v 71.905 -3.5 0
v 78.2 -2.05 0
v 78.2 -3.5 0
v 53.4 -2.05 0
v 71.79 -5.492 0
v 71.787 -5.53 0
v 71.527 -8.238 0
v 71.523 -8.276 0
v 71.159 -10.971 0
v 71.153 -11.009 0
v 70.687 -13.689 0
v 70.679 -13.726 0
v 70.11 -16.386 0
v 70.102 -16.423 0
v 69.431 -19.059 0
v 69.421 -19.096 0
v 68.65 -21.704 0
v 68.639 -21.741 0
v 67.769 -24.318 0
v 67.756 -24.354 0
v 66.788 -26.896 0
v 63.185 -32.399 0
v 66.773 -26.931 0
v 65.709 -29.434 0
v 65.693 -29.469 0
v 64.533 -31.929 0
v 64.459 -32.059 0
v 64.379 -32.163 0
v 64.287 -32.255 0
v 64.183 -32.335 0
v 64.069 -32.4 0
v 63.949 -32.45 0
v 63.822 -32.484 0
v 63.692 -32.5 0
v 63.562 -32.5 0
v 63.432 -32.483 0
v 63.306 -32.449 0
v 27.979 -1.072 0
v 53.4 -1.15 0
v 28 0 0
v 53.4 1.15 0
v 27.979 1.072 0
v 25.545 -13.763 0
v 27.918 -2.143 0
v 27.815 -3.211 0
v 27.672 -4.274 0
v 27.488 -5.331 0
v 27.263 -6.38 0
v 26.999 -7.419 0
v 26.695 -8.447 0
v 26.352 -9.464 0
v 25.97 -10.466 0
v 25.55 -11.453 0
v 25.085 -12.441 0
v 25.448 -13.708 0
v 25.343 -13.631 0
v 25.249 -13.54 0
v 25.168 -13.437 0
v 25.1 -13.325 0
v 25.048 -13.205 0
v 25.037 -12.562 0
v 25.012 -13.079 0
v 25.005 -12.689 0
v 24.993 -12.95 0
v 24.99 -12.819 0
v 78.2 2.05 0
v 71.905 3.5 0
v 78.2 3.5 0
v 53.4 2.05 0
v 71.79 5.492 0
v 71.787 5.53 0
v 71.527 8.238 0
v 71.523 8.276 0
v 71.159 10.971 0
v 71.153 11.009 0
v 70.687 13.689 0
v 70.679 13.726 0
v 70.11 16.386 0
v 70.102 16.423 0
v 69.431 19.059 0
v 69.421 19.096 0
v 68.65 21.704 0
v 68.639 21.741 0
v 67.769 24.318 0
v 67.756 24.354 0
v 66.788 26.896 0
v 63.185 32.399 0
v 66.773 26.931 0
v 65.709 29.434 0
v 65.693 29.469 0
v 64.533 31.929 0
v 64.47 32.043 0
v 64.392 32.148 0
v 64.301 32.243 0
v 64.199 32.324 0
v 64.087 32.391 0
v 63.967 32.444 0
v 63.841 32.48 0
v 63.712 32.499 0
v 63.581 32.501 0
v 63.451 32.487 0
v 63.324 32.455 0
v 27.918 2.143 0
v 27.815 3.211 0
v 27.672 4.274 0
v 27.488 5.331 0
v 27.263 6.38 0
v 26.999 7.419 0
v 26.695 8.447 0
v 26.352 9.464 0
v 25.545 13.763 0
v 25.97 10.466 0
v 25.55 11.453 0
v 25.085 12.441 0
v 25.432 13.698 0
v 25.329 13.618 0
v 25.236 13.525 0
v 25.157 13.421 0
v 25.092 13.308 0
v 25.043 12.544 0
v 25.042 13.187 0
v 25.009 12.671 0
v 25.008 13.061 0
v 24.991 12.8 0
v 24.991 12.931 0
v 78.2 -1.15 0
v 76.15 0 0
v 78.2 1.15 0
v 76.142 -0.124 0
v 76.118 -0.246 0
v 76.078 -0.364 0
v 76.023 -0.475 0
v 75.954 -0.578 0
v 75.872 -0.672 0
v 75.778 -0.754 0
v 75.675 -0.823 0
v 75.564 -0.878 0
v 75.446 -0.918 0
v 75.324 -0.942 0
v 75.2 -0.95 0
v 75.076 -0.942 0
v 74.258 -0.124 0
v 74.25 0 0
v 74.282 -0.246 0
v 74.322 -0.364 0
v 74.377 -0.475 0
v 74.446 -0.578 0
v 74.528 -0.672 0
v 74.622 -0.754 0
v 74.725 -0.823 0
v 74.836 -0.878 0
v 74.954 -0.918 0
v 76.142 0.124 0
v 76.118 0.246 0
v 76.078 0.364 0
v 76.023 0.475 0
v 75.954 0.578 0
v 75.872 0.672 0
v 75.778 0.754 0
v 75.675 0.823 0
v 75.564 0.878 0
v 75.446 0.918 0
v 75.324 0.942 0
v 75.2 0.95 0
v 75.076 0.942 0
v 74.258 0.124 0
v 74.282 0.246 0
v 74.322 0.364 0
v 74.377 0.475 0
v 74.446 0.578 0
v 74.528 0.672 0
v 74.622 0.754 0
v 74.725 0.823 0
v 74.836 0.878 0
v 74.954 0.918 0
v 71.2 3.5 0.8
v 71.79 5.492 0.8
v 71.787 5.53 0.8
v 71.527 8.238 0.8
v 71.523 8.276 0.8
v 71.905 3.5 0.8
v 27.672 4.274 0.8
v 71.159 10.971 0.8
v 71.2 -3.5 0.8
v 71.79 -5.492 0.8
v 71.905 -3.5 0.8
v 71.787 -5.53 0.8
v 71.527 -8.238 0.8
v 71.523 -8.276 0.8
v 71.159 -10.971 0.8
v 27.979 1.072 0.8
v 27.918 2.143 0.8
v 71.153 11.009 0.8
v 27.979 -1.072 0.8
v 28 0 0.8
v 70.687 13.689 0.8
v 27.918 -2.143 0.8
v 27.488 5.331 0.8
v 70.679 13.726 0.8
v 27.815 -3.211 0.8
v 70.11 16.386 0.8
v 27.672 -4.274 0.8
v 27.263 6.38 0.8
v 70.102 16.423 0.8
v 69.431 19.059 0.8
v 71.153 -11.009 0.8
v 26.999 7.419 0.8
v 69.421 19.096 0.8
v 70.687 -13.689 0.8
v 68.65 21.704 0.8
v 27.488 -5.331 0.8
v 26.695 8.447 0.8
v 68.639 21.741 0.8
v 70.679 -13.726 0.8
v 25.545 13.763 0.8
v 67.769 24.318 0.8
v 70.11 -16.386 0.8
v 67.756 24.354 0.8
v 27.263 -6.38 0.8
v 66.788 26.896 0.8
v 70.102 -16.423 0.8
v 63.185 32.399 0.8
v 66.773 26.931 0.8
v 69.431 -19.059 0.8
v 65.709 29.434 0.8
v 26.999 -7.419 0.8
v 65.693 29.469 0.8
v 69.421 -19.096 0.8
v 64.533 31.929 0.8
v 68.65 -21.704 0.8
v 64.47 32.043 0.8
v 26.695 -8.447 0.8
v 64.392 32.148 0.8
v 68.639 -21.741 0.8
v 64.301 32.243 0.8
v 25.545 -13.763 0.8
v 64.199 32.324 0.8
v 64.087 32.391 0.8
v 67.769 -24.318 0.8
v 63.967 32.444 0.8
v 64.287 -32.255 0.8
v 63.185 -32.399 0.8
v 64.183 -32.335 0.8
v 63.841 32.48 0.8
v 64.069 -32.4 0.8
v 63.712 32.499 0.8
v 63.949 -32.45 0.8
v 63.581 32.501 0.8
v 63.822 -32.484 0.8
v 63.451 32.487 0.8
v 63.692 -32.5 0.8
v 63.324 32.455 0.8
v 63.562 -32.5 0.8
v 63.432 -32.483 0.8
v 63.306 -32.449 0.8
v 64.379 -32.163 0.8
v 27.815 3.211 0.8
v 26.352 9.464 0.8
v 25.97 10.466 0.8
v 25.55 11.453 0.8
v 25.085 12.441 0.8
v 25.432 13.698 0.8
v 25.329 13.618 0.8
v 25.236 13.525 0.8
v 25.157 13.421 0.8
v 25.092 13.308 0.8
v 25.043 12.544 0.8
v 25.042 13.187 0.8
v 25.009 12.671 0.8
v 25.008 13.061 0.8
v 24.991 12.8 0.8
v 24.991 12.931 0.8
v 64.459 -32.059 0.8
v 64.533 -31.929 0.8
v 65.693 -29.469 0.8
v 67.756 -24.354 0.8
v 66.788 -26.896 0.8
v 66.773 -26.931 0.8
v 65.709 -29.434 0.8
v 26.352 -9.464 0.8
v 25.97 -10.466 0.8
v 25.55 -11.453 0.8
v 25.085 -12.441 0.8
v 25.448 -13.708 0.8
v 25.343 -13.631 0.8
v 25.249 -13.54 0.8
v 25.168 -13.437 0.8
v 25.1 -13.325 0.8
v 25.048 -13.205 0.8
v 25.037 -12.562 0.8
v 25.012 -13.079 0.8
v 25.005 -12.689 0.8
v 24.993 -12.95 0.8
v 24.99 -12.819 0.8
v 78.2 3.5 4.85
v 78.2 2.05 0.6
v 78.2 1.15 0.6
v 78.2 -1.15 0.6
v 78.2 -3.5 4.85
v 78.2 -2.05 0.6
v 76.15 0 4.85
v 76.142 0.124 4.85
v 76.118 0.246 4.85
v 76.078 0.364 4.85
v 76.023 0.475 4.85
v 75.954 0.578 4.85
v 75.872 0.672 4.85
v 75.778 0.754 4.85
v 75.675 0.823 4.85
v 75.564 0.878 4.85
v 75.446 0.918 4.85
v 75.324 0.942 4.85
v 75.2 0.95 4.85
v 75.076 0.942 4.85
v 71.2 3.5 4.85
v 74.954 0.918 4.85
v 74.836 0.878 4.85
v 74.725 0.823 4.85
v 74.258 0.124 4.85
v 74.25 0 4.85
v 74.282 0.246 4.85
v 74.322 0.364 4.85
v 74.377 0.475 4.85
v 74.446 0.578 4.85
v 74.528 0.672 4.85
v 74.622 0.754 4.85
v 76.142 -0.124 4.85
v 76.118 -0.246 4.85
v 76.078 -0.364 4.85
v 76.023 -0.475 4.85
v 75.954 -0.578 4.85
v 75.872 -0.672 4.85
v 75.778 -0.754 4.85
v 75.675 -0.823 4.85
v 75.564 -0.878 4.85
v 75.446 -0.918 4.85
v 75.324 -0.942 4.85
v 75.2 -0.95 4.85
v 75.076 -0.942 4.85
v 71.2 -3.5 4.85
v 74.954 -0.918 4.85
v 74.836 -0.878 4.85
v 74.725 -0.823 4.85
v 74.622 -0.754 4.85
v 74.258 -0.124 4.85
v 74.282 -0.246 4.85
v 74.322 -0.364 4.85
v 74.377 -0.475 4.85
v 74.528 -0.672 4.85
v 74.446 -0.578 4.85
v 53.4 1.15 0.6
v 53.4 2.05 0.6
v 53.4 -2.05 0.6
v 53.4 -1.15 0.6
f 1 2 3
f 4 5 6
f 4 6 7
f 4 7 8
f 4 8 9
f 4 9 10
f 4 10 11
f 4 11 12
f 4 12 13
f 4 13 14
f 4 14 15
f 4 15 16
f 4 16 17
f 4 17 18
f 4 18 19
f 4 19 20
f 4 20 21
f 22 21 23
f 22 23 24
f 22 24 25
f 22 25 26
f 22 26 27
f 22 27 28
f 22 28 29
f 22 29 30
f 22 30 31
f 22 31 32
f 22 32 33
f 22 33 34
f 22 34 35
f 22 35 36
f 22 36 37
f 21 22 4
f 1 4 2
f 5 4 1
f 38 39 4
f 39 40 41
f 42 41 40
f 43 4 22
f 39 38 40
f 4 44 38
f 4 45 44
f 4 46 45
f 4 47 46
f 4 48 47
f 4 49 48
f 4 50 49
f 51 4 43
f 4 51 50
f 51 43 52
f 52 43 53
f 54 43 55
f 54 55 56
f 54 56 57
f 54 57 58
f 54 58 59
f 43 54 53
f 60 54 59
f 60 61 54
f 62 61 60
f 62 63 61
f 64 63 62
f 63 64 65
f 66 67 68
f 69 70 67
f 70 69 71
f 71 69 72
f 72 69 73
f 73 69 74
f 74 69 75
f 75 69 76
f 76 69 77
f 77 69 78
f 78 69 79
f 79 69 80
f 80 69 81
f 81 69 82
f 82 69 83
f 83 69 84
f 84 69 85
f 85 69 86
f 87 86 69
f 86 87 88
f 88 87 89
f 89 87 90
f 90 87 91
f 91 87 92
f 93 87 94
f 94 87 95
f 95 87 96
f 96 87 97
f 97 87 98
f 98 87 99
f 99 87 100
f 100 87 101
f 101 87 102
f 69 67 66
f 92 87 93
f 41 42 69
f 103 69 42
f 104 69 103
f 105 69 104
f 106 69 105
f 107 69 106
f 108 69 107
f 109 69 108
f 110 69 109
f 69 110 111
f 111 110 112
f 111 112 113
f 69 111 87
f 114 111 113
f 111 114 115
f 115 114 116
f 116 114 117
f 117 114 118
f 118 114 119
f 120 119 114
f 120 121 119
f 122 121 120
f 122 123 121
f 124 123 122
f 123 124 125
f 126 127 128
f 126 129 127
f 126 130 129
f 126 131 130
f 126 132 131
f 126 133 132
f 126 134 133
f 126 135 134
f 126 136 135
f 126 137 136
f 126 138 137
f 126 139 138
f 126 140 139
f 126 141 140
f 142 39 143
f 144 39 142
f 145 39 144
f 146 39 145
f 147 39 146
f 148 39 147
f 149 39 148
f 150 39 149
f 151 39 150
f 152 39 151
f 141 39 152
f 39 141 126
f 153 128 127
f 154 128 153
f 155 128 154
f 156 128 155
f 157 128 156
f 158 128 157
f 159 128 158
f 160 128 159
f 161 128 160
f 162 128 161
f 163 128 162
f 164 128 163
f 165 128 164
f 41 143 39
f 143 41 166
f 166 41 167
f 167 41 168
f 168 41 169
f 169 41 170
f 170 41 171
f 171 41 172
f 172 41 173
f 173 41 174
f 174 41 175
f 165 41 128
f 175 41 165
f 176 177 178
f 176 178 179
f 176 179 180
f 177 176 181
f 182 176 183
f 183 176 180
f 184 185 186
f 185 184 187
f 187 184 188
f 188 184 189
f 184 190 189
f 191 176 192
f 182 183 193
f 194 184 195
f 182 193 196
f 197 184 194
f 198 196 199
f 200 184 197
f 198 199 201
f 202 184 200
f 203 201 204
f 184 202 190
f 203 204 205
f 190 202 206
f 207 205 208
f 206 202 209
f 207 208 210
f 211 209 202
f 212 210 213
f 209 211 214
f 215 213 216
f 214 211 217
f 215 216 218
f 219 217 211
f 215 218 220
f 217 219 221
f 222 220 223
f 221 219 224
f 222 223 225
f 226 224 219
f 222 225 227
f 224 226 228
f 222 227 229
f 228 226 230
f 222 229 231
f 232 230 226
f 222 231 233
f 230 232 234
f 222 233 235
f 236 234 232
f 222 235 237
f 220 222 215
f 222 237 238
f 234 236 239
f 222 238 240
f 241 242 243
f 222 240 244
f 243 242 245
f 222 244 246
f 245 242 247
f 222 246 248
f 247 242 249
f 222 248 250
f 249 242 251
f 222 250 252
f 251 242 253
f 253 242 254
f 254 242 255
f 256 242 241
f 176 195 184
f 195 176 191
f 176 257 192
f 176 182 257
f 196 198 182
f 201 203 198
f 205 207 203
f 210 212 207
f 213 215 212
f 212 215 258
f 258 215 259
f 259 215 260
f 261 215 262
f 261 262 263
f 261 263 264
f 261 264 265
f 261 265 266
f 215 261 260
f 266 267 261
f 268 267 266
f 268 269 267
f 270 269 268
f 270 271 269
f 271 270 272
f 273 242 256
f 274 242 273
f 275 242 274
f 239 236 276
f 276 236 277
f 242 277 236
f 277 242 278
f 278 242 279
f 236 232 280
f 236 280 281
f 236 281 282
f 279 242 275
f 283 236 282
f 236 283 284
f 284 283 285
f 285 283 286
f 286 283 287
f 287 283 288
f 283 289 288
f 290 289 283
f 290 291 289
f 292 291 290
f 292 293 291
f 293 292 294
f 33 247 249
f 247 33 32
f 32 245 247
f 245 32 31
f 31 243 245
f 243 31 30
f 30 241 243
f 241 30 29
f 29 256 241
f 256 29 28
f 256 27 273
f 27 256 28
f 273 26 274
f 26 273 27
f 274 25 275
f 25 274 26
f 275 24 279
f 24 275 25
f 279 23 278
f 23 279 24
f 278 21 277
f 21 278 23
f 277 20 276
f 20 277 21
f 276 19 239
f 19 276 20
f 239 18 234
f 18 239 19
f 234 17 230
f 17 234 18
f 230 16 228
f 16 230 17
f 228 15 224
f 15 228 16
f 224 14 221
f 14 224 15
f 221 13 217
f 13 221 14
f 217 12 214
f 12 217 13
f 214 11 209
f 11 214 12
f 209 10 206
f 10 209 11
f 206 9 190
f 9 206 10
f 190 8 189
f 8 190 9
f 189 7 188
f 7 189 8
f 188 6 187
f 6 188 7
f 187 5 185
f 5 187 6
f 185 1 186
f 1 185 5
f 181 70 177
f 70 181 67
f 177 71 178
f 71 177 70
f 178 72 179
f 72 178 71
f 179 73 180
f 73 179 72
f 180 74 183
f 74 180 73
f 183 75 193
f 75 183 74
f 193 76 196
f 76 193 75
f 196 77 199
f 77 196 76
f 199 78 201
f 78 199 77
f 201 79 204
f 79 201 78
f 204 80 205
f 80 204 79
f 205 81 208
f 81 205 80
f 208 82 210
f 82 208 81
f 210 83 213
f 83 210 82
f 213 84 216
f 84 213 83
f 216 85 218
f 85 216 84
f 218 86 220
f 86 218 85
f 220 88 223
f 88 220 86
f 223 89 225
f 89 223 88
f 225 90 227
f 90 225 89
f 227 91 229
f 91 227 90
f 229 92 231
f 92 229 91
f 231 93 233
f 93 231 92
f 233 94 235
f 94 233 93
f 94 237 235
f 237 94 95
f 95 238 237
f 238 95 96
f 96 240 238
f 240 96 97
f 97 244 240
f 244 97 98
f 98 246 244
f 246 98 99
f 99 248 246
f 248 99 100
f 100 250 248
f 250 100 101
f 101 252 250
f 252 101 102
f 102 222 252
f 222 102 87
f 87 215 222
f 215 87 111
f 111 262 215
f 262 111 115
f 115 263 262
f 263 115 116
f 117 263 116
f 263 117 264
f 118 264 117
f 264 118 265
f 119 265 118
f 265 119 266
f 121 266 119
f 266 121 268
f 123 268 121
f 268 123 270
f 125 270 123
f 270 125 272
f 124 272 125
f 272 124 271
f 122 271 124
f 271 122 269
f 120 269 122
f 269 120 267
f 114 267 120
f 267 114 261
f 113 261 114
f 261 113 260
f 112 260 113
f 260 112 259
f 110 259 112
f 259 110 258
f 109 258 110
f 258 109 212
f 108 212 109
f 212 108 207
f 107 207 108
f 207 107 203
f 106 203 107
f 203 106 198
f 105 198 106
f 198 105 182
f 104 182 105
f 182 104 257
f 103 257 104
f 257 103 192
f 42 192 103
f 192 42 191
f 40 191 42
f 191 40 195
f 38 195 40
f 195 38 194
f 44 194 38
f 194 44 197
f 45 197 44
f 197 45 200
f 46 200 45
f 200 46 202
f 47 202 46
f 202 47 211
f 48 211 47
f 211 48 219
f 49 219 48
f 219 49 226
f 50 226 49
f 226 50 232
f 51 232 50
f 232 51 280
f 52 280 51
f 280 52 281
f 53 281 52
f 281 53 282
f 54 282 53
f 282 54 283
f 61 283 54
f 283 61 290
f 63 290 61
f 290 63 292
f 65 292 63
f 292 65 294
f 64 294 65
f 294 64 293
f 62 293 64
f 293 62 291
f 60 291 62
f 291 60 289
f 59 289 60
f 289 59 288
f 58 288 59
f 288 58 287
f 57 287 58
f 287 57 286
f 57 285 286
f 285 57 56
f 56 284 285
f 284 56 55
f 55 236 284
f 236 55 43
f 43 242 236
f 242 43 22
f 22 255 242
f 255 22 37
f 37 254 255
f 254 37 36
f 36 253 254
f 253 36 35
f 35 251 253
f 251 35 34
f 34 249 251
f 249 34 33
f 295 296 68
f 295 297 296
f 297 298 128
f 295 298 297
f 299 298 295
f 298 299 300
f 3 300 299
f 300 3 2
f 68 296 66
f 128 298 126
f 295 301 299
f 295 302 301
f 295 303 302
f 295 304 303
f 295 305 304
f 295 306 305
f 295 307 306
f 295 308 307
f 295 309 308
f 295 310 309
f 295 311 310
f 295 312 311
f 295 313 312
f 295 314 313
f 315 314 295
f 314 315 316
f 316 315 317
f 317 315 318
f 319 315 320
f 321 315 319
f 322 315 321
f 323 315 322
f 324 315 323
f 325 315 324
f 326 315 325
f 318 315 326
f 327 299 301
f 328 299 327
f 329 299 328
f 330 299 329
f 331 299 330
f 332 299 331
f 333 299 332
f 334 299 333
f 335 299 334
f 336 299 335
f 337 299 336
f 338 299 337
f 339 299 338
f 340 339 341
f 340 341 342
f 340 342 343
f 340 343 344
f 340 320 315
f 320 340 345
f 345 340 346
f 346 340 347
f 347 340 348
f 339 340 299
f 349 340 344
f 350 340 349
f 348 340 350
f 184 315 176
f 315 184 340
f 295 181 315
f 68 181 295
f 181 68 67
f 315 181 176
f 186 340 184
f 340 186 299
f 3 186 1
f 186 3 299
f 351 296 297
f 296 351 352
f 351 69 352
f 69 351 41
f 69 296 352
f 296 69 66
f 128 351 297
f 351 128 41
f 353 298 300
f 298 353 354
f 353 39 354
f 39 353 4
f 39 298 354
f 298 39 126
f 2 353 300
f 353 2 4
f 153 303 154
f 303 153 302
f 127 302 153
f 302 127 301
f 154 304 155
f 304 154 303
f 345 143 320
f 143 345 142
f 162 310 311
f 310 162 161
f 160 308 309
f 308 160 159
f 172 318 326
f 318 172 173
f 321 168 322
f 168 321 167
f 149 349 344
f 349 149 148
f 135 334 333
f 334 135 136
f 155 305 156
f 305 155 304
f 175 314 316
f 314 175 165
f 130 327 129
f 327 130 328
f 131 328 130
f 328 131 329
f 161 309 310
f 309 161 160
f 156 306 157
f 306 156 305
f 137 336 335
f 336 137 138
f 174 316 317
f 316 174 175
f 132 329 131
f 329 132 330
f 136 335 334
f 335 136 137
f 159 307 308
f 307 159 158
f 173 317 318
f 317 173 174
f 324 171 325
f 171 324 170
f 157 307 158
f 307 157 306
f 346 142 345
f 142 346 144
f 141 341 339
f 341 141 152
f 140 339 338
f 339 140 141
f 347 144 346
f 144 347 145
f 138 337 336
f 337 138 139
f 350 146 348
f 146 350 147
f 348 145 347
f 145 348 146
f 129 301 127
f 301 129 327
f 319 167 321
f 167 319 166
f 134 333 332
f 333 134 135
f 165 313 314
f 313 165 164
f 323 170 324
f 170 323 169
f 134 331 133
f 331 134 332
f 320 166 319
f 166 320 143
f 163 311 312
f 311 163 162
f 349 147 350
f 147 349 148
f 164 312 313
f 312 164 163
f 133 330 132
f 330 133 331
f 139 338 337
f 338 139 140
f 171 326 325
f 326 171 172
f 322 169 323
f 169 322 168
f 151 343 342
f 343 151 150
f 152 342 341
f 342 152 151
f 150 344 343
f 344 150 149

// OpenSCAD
// file: parameters.scad
// =============================================================================
// Gen-BP — nightly 2026-10-07 (physics_scorer, honest magpylib watts)
// Cheapest upgrade of the champion: keep Gen-BL's wound bobbins, stator, gap sleeve, endbells and Ø134 steel, and print only two new rotor carriers — 5.00 mm thick (flush magnet seat, recess 0 instead of 0.10 mm, magnet→wound envelope still 0.50 mm) with the diametric Ø5 assists moved from R40/50/60 to R43/50/57. Modular: the rotor is the only swapped module.
// Clocking 0 deg (magnets N facing S) + D-flat keyed bore + index notch + flip-symmetric hole map.
// Windable 2-piece bobbin; turns = physics_scorer turns_fit; copper only between flanges.
// Steel back-iron: 2× Ø134 × 4.76 mm (3/16") mild-steel discs (steel_backiron_disc.dxf); magnets sit ON the steel
// (through-pockets) -> score with --back-iron.
// =============================================================================
topology            = "dual_rotor";

// --- Wire / winding (physics_scorer winding-fit) -------------------------------
wire_awg            = 26;
wire_od             = 0.45;     // insulated OD mm (bare 0.405)
fill_realistic      = 0.65;     // insulated-wire area / window (DENSE layered wind with a jig; scorer cap 0.65)
turns               = 566;       // = physics_scorer turns_fit (do NOT raise)
coil_former_type    = "bobbin";
coil_core_inset     = 17.10;     // radial copper build: hub = copper boundary inset by this
wind_build_axial    = 0.0;      // nothing proud of the flanges
wind_build_radial   = 0.0;

// --- Bobbin (base + lid) ---------------------------------------------------------
coil_id_r           = 29.00;    // copper boundary sector
coil_od_r           = 71.00;
span_deg            = 52.68;    // = pitch - 2*asin((wall+0.85)/coil_id_r) -> >=1.2 mm stator web
former_web          = 8.10;     // copper height between flanges (TALL copper: steel keeps Bz up)
flange_t            = 0.80;     // >= 0.8 mm FDM wall rule (tall winds push on the flanges)
wall                = 1.00;     // flange lip beyond copper
former_bare_h       = former_web + 2 * flange_t;
coil_envelope_h     = former_bare_h + 2 * wind_build_axial;
tab_w               = 7.0;
tab_len             = 7.0;
tab_h               = former_bare_h / 2;
pin_d               = 1.9;      // 1.75 mm filament locating pin
coil_mount_r        = coil_od_r + 0.2 + 4.0;
lead_y              = 1.6;
lead_slot_w         = 0.9;
lead_groove_d       = 0.6;

// --- Gap -------------------------------------------------------------------------
run_clear           = 0.50;     // rotor face -> flange
gap_spacer_h        = run_clear + wind_build_axial;
m2m                 = coil_envelope_h + 2 * run_clear;   // rotor face to rotor face (= gap_sleeve length)

// --- Stator ----------------------------------------------------------------------
coil_stations       = 6;
bay_clear           = 0.25;
stator_thick        = former_bare_h;                        // bobbins flush both faces
stator_od           = 160;
shaft_clear_stator  = 14.0;     // stator is static; gap sleeve OD 12 spins inside

// --- Rotor(s) --------------------------------------------------------------------
magnet_Br           = 1.43;     // N52
magnet_d_large      = 20.0;
magnet_h_large      = 5.0;      // one O20x5 per pocket
magnet_h_small      = 5.0;      // one O5x5 per pocket
halbach_magnetisation = "diametric"; // O5x5 assist magnets MUST be DIAMETRICALLY magnetised (tangential)
rotor_b_same_axis   = true;     // same-index magnets share one axis: N faces S across the gap
large_pocket_d      = 20.3;
small_pocket_d      = 5.3;
pocket_h            = 5.00;     // THROUGH the carrier: magnet back face sits on the steel disc (FLUSH seat: carrier = magnet height, magnet face level with the rotor face)
large_n             = 8;
R_large             = 50.0;
R_small_inner       = 43.0;
R_small_mid         = 50.0;
R_small_outer       = 57.0;
small_r_list        = [R_small_inner, R_small_mid, R_small_outer];   // O5 pockets between poles
carrier_od          = 134.0;
carrier_thick       = pocket_h;
hub_h               = 12.0;     // > steel_t + insert: radial set-screw clears the steel
hub_od              = 24.0;     // slim hub so the M4 brace rods fit at R~18 inside the coil ring
hub_insert_d        = 4.0;      // M3 heat-set insert, radial, bears on the D-flat
rotor_b_offset_deg  = 0.0;      // CLOCKING: magnets directly opposite
shaft_key           = "dflat";
dflat_depth         = 0.5;      // 8 mm shaft with 0.5 mm flat (7.5 across flat)
index_notch_d       = 3.0;

// --- Steel back-iron (buyable laser-cut) -------------------------------------------
steel_t             = 4.76;      // mild steel thickness (image method ignores it; sized from steel_flux.py so the return path stays well below saturation)
steel_center_hole   = 26.0;     // slips over the rotor hub (OD 24)
steel_od            = carrier_od;   // steel disc OD = rotor carrier OD

// --- Modular MAX interface ----------------------------------------------------------
shaft_bore          = 8.35;
dflat_x             = 4.0 - dflat_depth + (shaft_bore - 8.0) / 2;
bearing_d           = 21.85;
bearing_h           = 7.2;
m3_clear            = 3.5;
bolt_r_inner        = 30.0;     // M3 steel-disc clamp bolts (inside the magnet ring)
bolt_n_inner        = 4;
bolt_inner_angles   = [0, 90, 180, 270];
bolt_r_outer        = 63.0;     // M3 steel-disc clamp bolts (outside the magnet ring)
bolt_outer_angles   = [45, 135, 225, 315];
flange_bolt_r       = 73.0;     // frame rods: OUTSIDE the rotor OD (rotors spin inside them)
flange_bolt_n       = 6;
flange_bolt_offset  = 30.00;    // between coil stations -> never cuts a lead groove/tab
brace_r             = 18.0;
brace_d             = 4.3;      // temporary M4 jack rods (assembly only)
brace_n             = 4;
brace_angles        = [45, 135, 225, 315];          // flip-symmetric

spacer_pad_od       = 14.0;
spacer_pad_id       = m3_clear;
endbell_od          = 160;
endbell_thick       = 8.0;
endbell_shaft_clear = 10.0;
collar_h            = 10.0;
standoff_od         = 9.0;
frame_standoff_h    = run_clear + carrier_thick + hub_h + collar_h + 2.0;
sleeve_od           = 12.0;
plate_max_mm        = 410;

$fn = 64;
// main file
// Gen-BP — bobbin LID (top flange + locating tab). Print x6, flange face DOWN on the bed.
// CA-glue onto the hub top BEFORE winding. Tab = lap joint into the stator tab pocket; 1.75 mm filament
// pin through pin hole + stator ledge, trim flush. Lead slots carry both leads flush.
include <parameters.scad>;
$fn = 48;
module sector_2d(r_in, r_out, ang) {
    polygon([
        for (a = [-ang/2 : ang/24 : ang/2]) [r_in*cos(a), r_in*sin(a)],
        for (a = [ang/2 : -ang/24 : -ang/2]) [r_out*cos(a), r_out*sin(a)]
    ]);
}
module footprint_2d() { offset(r=wall) sector_2d(coil_id_r, coil_od_r, span_deg); }
module hub_2d()       { offset(delta=-coil_core_inset) sector_2d(coil_id_r, coil_od_r, span_deg); }

difference() {
    union() {
        linear_extrude(flange_t) footprint_2d();
        translate([coil_od_r + 0.2, -tab_w/2, 0]) cube([tab_len, tab_w, tab_h]);
    }
    translate([coil_mount_r, 0, -0.1]) cylinder(d=pin_d, h=tab_h + 1);
    for (y = [lead_y, -lead_y])
        translate([coil_od_r - coil_core_inset - 0.5, y - lead_slot_w/2, -0.1])
            cube([coil_core_inset + tab_len + 2, lead_slot_w, lead_groove_d + 0.1]);
}
